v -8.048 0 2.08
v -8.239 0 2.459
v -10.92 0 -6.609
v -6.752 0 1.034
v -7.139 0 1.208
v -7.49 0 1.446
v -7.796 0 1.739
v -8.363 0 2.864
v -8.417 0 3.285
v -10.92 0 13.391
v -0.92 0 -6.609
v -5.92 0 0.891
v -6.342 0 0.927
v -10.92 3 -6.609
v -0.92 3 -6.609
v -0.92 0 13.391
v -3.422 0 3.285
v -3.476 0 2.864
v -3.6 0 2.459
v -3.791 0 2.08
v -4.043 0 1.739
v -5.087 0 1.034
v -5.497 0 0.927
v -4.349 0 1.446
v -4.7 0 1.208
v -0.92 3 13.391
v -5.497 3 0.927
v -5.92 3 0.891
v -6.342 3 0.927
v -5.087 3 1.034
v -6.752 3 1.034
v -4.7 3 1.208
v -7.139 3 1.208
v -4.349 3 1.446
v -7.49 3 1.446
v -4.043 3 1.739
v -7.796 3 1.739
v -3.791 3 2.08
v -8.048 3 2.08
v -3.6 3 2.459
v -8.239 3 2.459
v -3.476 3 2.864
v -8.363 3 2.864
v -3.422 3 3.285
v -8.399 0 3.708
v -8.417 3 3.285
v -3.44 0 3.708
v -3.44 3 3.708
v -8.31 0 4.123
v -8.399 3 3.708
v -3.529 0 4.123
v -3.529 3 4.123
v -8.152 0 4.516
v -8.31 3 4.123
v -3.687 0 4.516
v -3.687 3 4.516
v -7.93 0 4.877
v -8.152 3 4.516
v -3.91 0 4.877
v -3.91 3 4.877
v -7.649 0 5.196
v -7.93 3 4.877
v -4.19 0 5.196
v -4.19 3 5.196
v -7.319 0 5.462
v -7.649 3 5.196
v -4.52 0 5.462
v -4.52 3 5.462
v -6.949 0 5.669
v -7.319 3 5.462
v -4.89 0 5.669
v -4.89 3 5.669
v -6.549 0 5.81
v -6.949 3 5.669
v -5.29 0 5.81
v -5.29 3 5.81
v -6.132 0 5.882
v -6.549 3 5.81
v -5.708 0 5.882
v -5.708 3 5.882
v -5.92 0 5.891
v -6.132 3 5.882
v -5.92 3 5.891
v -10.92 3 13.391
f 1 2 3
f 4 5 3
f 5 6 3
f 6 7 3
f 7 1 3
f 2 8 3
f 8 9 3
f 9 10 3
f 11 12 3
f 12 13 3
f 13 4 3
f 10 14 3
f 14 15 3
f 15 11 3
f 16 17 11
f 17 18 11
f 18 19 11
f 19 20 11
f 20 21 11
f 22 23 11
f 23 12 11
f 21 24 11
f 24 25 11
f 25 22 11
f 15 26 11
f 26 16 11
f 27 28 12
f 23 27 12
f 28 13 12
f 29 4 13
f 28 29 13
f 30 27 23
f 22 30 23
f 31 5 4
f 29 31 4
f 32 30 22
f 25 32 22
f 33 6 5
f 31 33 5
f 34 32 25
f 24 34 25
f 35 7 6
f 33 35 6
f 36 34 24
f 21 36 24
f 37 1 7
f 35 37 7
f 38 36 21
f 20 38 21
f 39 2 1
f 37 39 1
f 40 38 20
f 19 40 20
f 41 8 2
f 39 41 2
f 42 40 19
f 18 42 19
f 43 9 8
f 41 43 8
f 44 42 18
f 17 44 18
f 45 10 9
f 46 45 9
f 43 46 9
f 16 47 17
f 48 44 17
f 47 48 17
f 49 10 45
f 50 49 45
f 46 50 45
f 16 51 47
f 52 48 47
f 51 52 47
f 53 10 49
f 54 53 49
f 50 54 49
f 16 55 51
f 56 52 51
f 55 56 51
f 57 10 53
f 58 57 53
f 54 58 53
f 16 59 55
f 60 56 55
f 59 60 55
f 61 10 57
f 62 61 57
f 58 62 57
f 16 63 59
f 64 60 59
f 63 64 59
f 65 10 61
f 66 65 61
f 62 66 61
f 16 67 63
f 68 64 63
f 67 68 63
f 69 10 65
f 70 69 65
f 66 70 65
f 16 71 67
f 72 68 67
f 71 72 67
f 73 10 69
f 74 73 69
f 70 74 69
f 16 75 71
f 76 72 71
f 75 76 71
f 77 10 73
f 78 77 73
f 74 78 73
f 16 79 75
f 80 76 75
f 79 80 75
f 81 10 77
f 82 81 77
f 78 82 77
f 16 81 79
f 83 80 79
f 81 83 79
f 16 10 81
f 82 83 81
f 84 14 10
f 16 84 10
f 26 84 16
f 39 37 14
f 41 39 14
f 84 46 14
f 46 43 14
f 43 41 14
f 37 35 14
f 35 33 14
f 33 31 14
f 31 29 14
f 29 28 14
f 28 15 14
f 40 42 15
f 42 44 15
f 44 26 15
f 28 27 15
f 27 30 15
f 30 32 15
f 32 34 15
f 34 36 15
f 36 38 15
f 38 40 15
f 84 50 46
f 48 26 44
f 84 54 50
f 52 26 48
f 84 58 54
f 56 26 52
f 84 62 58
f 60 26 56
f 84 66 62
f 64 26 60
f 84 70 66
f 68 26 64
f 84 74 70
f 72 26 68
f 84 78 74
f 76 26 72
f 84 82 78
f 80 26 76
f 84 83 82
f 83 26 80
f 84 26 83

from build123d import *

# Parameters (mm, degrees)
SKETCH_1_W      = 10
SKETCH_1_H      = 20
SKETCH_1_R      = 2.5
EXTRUDE_1_DEPTH = 3


with BuildPart() as part:
    # 草圖1 → 填料-伸長1 (new body)
    with BuildSketch(Plane(origin=(0, 0, 0), x_dir=(1, 0, 0), z_dir=(0, 1, 0))):
        with Locations((-5.91954023, -3.390804598)):
            Rectangle(SKETCH_1_W, SKETCH_1_H)
        with Locations(Location((-5.91954023, -3.390804598, 0), (0, 0, 270))):
            Circle(SKETCH_1_R, mode=Mode.SUBTRACT)
    extrude(amount=EXTRUDE_1_DEPTH)


solid = part.part
